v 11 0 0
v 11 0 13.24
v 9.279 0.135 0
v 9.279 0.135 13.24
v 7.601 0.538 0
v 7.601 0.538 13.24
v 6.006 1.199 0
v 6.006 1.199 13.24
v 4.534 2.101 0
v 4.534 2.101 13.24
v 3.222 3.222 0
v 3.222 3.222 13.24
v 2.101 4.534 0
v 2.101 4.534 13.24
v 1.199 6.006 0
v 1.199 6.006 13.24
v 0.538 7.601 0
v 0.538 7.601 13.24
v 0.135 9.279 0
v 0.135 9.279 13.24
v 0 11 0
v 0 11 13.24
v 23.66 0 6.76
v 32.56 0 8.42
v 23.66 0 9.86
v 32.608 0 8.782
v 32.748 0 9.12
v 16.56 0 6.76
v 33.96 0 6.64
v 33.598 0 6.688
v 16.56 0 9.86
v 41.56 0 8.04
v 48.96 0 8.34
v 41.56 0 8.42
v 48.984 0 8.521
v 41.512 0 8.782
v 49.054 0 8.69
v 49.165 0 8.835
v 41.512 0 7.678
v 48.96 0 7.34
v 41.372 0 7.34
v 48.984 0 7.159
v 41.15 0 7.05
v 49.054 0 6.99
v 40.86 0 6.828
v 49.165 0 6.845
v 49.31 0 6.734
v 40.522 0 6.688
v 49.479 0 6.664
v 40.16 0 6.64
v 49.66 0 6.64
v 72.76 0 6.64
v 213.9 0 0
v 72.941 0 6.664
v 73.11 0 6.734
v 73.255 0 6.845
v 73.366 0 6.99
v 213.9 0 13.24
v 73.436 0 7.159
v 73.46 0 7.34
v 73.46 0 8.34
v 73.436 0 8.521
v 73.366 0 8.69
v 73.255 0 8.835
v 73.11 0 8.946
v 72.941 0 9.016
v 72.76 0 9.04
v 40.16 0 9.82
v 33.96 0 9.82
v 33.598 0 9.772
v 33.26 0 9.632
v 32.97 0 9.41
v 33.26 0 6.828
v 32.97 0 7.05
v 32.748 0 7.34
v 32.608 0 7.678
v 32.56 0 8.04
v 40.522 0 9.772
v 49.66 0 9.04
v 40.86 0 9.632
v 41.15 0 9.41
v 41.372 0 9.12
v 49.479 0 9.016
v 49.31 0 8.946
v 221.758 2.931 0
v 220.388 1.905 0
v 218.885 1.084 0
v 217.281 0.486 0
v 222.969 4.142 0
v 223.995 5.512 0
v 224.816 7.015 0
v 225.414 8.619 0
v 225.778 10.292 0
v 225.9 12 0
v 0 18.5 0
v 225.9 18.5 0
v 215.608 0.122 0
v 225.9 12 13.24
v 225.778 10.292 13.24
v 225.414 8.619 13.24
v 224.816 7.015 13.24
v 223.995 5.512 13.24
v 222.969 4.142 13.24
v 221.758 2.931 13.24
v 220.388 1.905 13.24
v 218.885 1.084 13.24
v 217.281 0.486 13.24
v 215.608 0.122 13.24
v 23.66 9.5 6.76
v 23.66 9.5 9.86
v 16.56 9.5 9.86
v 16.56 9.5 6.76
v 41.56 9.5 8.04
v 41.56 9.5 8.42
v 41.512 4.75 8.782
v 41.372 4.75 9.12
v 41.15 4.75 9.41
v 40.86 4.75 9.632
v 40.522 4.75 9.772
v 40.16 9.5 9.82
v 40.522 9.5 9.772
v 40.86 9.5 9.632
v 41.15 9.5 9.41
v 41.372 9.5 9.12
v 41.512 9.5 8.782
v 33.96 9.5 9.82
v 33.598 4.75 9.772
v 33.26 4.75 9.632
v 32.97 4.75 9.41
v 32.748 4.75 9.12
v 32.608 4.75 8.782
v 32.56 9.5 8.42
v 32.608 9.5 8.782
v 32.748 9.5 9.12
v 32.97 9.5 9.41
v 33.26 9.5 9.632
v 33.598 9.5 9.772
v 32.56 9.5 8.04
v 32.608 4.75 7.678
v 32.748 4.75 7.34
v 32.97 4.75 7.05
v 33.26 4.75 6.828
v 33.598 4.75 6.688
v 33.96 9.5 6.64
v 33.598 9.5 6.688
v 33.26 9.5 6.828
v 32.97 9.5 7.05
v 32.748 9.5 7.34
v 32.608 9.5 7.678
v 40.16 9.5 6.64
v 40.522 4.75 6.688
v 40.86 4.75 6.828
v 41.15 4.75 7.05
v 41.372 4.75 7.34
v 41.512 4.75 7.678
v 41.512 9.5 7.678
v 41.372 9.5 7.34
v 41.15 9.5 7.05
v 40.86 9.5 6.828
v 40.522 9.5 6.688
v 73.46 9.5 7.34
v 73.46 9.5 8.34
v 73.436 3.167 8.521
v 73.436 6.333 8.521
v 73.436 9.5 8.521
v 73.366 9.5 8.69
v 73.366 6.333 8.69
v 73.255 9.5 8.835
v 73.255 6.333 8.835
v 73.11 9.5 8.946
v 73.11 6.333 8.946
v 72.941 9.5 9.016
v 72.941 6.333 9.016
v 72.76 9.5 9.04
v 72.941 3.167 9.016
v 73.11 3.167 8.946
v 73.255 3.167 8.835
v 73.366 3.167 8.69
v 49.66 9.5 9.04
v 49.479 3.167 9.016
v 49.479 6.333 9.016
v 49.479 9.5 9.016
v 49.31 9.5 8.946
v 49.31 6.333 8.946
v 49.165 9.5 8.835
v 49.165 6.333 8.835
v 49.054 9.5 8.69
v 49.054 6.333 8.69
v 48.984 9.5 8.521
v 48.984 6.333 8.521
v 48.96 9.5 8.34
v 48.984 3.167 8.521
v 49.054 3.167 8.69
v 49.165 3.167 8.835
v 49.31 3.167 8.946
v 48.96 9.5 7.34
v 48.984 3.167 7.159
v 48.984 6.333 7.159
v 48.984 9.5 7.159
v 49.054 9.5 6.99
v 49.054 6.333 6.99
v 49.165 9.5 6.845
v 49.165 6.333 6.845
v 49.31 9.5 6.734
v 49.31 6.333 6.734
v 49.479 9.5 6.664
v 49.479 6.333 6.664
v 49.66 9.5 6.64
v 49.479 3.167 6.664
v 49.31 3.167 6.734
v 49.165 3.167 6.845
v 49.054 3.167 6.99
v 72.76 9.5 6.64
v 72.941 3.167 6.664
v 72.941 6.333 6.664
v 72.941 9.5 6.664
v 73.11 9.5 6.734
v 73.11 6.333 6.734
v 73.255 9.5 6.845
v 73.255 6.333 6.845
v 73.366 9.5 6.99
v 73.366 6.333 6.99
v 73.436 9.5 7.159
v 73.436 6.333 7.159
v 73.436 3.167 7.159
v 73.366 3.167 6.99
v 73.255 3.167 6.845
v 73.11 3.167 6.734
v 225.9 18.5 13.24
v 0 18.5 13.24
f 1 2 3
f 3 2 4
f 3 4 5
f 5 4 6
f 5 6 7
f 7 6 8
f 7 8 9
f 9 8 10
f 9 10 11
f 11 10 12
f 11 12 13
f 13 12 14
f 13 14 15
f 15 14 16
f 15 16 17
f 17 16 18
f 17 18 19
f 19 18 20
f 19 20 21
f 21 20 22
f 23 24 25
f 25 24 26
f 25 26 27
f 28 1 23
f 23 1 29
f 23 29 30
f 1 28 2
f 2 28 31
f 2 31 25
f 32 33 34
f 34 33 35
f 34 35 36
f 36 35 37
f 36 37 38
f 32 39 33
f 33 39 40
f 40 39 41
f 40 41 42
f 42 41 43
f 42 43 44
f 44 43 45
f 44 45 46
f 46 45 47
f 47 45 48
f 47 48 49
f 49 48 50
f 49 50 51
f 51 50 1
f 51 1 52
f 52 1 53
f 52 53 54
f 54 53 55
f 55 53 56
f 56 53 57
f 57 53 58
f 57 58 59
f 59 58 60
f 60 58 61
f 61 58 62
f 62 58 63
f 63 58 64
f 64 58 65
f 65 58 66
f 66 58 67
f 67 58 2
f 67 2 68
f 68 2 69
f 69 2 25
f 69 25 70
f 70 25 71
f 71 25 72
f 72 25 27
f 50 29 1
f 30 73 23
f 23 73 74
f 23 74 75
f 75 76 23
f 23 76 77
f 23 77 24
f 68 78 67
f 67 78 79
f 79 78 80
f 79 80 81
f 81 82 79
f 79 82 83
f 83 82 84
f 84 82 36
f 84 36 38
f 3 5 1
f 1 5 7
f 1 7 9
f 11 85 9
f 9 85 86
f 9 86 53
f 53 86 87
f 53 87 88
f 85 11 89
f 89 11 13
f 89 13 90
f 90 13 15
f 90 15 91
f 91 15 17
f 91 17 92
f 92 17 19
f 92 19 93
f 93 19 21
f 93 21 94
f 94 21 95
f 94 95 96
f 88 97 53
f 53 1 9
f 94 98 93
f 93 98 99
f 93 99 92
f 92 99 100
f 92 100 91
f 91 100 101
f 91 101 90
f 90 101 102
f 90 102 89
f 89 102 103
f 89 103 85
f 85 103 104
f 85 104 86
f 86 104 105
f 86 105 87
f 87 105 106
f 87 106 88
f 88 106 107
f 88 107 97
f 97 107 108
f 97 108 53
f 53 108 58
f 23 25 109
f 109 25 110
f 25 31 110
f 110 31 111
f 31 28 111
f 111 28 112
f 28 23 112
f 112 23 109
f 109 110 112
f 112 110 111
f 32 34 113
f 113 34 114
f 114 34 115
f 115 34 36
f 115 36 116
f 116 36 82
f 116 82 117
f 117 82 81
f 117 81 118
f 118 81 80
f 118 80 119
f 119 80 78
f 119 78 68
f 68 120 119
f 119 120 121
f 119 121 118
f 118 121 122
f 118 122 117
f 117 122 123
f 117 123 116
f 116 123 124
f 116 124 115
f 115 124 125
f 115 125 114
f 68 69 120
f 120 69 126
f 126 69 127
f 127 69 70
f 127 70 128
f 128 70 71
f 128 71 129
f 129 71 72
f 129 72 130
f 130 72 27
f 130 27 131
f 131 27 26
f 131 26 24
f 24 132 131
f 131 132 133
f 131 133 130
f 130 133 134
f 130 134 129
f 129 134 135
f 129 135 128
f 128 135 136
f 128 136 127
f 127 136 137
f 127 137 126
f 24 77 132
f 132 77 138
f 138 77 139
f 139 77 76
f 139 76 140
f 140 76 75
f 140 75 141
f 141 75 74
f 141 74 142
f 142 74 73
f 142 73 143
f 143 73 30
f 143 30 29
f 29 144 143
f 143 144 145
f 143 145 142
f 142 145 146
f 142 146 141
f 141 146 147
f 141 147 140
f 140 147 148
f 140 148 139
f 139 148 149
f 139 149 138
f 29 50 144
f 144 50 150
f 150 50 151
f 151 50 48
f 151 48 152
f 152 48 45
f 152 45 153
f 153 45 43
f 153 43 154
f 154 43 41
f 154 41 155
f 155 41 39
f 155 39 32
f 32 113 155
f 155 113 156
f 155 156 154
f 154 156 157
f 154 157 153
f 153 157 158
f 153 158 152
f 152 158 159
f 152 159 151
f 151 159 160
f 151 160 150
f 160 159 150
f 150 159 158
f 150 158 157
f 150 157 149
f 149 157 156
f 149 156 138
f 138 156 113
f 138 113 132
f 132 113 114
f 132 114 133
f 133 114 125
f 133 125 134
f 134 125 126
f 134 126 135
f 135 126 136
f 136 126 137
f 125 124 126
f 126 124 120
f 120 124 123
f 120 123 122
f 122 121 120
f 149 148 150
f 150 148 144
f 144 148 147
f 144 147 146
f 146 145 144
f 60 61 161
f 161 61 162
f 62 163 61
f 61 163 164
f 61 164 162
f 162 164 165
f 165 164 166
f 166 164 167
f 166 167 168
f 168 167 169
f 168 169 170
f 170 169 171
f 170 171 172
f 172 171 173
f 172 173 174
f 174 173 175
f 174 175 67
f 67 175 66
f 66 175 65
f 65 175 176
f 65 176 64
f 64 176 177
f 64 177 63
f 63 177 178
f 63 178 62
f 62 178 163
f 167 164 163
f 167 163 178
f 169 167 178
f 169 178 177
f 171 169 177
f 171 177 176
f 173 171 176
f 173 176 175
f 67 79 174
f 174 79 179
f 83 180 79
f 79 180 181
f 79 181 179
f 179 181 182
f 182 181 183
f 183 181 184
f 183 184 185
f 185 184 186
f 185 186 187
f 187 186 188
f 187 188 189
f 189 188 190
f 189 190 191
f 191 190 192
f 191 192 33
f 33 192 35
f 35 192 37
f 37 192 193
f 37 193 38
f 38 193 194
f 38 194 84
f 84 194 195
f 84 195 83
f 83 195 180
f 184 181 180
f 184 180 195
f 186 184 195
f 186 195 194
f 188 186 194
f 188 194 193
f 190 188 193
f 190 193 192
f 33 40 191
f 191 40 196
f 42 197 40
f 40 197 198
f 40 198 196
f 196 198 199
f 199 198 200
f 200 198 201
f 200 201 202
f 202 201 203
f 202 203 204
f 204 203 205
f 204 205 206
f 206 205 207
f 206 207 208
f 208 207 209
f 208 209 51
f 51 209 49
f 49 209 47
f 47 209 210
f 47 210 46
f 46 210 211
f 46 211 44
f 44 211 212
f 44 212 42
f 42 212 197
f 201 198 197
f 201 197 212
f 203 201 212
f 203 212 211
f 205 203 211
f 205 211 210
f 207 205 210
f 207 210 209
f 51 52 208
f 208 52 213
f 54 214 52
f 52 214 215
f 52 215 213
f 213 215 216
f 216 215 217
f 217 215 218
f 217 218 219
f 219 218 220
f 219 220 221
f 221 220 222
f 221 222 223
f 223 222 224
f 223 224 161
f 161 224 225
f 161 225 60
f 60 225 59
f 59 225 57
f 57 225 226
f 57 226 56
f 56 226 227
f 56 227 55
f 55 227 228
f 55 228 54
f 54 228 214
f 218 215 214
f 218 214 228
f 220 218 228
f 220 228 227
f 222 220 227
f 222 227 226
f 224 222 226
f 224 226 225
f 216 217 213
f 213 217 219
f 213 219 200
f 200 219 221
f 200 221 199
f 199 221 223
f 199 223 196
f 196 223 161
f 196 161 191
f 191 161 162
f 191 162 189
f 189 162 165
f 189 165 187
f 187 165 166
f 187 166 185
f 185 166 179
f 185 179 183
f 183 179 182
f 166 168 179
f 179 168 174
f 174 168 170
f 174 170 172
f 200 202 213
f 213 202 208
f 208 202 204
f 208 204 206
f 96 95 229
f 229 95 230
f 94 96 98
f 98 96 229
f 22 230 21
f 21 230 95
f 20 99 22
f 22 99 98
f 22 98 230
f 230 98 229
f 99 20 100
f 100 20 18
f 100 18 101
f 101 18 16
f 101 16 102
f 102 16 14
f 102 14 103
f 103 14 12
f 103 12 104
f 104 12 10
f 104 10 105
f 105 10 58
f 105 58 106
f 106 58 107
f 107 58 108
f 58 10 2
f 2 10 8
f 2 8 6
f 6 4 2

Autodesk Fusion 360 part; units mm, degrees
sketch "Sketch1" plane through (0, 0, 0) normal (0, 0, 1) x (1, 0, 0) in component "Laptop side"
  line L0 (0, 0) -> (225.9, 0)
  line L1 (225.9, 0) -> (225.9, 18.5)
  line L2 (225.9, 18.5) -> (0, 18.5)
  line L3 (0, 18.5) -> (0, 0)
  dimension "d1" = 225.9
  dimension "d2" = 18.5
extrude "Extrude1" add sketch "Sketch1" along normal blind 13.24 in component "Laptop side"
sketch "Sketch2" plane through (0, 0, 0) normal (0, -1, 0) x (1, 0, 0) in component "Laptop side"
  line L0 (0, 0) -> (225.9, 0)
  line L1 (225.9, 0) -> (225.9, 13.24)
  line L2 (225.9, 13.24) -> (0, 13.24)
  line L3 (0, 13.24) -> (0, 0)
  line L4 (16.56, 9.86) -> (23.66, 9.86)
  line L5 (23.66, 9.86) -> (23.66, 6.76)
  line L6 (23.66, 6.76) -> (16.56, 6.76)
  line L7 (16.56, 6.76) -> (16.56, 9.86)
  line L8 (33.96, 9.82) -> (40.16, 9.82)
  line L9 (41.56, 8.42) -> (41.56, 8.04)
  line L10 (40.16, 6.64) -> (33.96, 6.64)
  line L11 (32.56, 8.04) -> (32.56, 8.42)
  arc A0 (33.96, 9.82) -> (32.56, 8.42) centre (33.96, 8.42) ccw
  arc A1 (32.56, 8.04) -> (33.96, 6.64) centre (33.96, 8.04) ccw
  arc A2 (40.16, 6.64) -> (41.56, 8.04) centre (40.16, 8.04) ccw
  arc A3 (41.56, 8.42) -> (40.16, 9.82) centre (40.16, 8.42) ccw
  line L12 (49.66, 9.04) -> (72.76, 9.04)
  line L13 (73.46, 8.34) -> (73.46, 7.34)
  line L14 (72.76, 6.64) -> (49.66, 6.64)
  line L15 (48.96, 7.34) -> (48.96, 8.34)
  arc A4 (49.66, 9.04) -> (48.96, 8.34) centre (49.66, 8.34) ccw
  arc A5 (48.96, 7.34) -> (49.66, 6.64) centre (49.66, 7.34) ccw
  arc A6 (72.76, 6.64) -> (73.46, 7.34) centre (72.76, 7.34) ccw
  arc A7 (73.46, 8.34) -> (72.76, 9.04) centre (72.76, 8.34) ccw
  point P0 (32.56, 9.82)
  point P1 (41.56, 9.82)
  point P2 (32.56, 6.64)
  point P3 (48.96, 9.04)
  point P4 (73.46, 9.04)
  point P5 (48.96, 6.64)
  dimension "d5" = 7.1
  dimension "d6" = 3.1
  dimension "d7" = 16.56
  dimension "d8" = 3.38
  dimension "d19" = 9
  dimension "d20" = 3.18
  dimension "d21" = 1.4
  dimension "d22" = 3.42
  dimension "d24" = 25
  dimension "d25" = 8.9
  dimension "d26" = 24.5
  dimension "d27" = 2.4
  dimension "d28" = 4.2
  dimension "d29" = 56.9
  dimension "d30" = 25.3
  dimension "d31" = 0.7
extrude "Extrude2" cut sketch "Sketch2" against normal blind 9.5 contours L4 L5 L6 L7 | L8 L9 L10 L11 A0 A1 A2 A3 | L12 L13 L14 L15 A4 A5 A6 A7 in component "Laptop side"
fillet "Fillet1" radius 12 1 edges at (225.9, 0, 6.62) in component "Laptop side"
fillet "Fillet1" radius 11 1 edges at (0, 0, 6.62) in component "Laptop side"
component "Laptop side" placed x (1, 0, 0) y (0, 1, 0) z (0, 0, 1) at (0, 0, 0)
